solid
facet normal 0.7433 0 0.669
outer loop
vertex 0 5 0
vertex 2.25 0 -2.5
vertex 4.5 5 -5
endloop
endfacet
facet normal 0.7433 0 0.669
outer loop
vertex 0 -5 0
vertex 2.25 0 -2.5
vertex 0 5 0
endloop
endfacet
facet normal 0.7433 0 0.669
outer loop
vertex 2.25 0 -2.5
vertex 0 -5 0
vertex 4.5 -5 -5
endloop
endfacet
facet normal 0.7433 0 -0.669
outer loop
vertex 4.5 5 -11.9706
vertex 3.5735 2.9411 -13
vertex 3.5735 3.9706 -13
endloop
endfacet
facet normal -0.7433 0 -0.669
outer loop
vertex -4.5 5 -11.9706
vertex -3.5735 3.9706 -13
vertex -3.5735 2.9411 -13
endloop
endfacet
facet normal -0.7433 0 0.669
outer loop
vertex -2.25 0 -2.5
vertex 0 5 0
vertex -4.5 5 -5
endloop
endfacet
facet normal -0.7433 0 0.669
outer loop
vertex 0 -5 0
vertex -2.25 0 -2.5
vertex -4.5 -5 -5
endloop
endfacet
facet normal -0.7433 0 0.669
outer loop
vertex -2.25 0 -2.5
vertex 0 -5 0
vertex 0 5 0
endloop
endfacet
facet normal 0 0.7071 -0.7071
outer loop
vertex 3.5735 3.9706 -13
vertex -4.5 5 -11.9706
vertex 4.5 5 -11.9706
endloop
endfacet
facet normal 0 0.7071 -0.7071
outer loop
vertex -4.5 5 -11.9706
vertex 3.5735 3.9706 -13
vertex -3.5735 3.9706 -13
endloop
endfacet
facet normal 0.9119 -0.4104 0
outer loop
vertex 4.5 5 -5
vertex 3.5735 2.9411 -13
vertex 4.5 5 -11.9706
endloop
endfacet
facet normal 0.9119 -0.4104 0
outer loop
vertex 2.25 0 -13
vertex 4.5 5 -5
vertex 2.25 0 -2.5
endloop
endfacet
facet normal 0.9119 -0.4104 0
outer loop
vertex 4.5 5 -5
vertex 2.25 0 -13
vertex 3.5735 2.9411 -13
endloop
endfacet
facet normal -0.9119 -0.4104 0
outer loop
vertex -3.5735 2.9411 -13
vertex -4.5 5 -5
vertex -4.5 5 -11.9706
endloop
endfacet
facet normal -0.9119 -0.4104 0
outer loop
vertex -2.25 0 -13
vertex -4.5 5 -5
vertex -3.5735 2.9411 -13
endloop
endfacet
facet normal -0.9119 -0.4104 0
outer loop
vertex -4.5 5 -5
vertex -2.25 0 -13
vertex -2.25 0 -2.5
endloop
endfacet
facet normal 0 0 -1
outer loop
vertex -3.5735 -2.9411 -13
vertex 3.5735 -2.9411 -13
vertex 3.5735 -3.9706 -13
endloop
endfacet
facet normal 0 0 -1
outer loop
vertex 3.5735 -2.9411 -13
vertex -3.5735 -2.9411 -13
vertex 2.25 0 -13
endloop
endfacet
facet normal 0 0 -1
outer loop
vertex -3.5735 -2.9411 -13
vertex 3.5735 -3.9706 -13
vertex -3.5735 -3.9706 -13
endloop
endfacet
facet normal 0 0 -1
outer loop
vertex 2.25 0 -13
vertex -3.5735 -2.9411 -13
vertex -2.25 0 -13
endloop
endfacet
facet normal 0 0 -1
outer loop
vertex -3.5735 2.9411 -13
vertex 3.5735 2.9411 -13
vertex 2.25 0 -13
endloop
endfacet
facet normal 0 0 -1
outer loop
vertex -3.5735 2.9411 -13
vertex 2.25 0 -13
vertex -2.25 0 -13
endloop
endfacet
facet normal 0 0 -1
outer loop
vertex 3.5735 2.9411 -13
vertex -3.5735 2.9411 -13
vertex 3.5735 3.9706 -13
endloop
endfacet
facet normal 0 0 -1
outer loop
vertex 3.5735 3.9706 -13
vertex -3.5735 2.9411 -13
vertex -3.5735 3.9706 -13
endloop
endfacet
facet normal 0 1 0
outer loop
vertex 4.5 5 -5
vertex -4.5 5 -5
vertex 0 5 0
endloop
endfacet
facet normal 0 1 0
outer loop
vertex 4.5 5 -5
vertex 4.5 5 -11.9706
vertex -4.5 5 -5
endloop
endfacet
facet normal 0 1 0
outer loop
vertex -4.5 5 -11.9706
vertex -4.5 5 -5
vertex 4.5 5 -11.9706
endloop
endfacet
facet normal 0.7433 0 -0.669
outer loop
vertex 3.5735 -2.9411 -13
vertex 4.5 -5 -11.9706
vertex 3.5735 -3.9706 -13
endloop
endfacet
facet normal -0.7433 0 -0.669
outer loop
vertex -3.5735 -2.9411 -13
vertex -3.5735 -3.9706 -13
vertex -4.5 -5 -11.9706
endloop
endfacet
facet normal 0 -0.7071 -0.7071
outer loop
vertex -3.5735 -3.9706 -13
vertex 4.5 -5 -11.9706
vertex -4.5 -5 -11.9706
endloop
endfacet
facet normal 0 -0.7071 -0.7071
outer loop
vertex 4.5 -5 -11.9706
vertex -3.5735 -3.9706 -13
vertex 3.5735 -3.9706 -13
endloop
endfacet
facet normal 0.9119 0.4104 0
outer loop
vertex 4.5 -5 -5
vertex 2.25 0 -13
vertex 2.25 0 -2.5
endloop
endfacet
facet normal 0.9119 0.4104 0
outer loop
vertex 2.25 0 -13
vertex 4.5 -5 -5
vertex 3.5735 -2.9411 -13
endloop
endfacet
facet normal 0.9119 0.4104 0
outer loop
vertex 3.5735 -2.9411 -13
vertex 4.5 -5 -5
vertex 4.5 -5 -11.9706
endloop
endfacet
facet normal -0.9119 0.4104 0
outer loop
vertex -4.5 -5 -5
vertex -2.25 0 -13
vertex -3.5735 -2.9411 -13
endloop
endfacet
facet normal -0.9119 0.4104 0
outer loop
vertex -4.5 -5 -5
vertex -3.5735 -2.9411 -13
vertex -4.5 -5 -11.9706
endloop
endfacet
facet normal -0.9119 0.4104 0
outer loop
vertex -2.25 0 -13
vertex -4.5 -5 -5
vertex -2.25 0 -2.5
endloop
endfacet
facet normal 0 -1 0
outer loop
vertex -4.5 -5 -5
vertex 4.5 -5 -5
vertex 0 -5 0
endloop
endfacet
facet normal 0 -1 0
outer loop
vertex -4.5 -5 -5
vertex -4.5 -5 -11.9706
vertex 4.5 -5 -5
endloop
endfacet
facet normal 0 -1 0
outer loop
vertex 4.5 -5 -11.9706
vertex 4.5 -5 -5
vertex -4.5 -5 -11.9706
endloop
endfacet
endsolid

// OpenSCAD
// file: globals.scad
/*
Most things in this file is represented as one millimeter, so keep that in mind while changing things.
Some of the setting are not mm but at variables that you can set, such as 2*x=2x and you are setting what x is.
I will try to specify when things are variables and not exact measurements.
*/

obj_leg = 30;
leg_length = 5.5;
small_number = 0.001;
metal_core_rode_global = 5;


///////////////// number of holes /////////////////////
z_hole_number = 8;
other_holes = 8;

///////////////// Pins /////////////////////

//pins that poke out
ball_size = 10;
pin_height = 20;
pin_diameter = 6;


//holes
hole_ball_size = ball_size;
hole_pin_height = pin_height;
hole_pin_diameter = pin_diameter;

///////////////// Z THINGS /////////////////////

berring_slot_width = 7.5;
berring_slot_depth = 6.5;
metal_core_rode = 5;

///////////////// X THINGS /////////////////////

//male dove tails
max_width=10;
min_width=5;
depth=5;
height=obj_leg/2;

//female dove tails, this is found on the y mounts
girl_max_width=11;
girl_min_width=5;
girl_depth=5;
girl_height=obj_leg;


///////////////// Y THINGS /////////////////////
/*
The Y is so normal that all of those global variables at the top should change all of the setting in it, this section is set her incase there are variables set in the future development of this project.
*/
// file: include.scad
//////////////////      END SECTION       //////////////////

	module added_pins(){
		difference(){
			union(){
				translate([30/(15/4),obj_leg*leg_length,30/(15/4)]) pin();
				translate([30/(15/4)+14.5,obj_leg*leg_length,30/(15/4)+14]) pin();
			}
			union(){
							translate([30/(15/4)+13.5,obj_leg*leg_length-20,30/(15/4)+5])cube(size=[2,40,15]);
							translate([30/(15/4)+7.5,obj_leg*leg_length-20,30/(15/4)+15])rotate([0,90,0]) cube(size=[2,40,15]);	

							translate([30/(15/4)-1,obj_leg*leg_length-20,30/(15/4)-8])cube(size=[2,40,15]);
							translate([30/(15/4)-10,obj_leg*leg_length-20,30/(15/4)+1])rotate([0,90,0]) cube(size=[2,40,15]);
			}
		}
	}
	module taken_pins() {
		translate([30/(15/4)+14,obj_leg*leg_length-10,30/(15/4)]) mirror_pin();
		translate([30/(15/4),obj_leg*leg_length-10,30/(15/4)+15]) mirror_pin();
	}


//////////////////      OTHER STUFF       //////////////////

	module holes() {
		rotate([0,0,90]) for(y=[0:other_holes])
		translate([obj_leg+y*15,-15.5,7.5]) union() {
			translate([7.5,0,15]) hole_up();
			hole_down();
		}
	}
	module extend_holes() {
	module top(){
		rotate([0,0,90]) for(y=[0:other_holes+1])
		translate([(30/4)+y*15,-15.5,7.5]) union() {
			translate([7.5,0,15]) hole_up();
		}
	}
	module bottom(){
		rotate([0,0,90]) for(y=[0:other_holes+2])
		translate([(30/4)+y*15,-15.5,7.5]) union() {
			hole_down();
		
}
	}
	union(){
		top();
		bottom();
	}
	}

	module hole() {
		union() {
			rotate([90, 90, 0]) cylinder(h=40, d=hole_pin_diameter, center=true);
			translate([0,7.5,0]) sphere(d=hole_ball_size);
			translate([0,-6,0]) sphere(d=hole_ball_size);
		}
	}
	module hole_up() {
		union() {
			rotate([90, 90, 0]) cylinder(h=40, d=hole_pin_diameter, center=true);
			translate([0,7.5,10]) cylinder(h=hole_pin_height, d=hole_pin_diameter, center=true);
			translate([0,-6,10]) cylinder(h=hole_pin_height, d=hole_pin_diameter, center=true);
			translate([0,7.5,0]) sphere(d=hole_ball_size);
			translate([0,-6,0]) sphere(d=hole_ball_size);
		}
	}
	module hole_down() {
		union() {
			rotate([90, 90, 0]) cylinder(h=40, d=hole_pin_diameter, center=true);
			translate([0,7.5,-10]) cylinder(h=hole_pin_height, d=hole_pin_diameter, center=true);
			translate([0,-6,-10]) cylinder(h=hole_pin_height, d=hole_pin_diameter, center=true);
			translate([0,7.5,0]) sphere(d=hole_ball_size);
			translate([0,-6,0]) sphere(d=hole_ball_size);
		}
	}
	module pin() {
		union() {
			rotate([90, 90, 0]) cylinder(h=pin_height, d=pin_diameter, center=true);
			translate([0,7.5,0]) sphere(d=ball_size);
		}
	}

	module mirror_pin() {
		rotate([90, 90, 0]) cylinder(h=hole_pin_height+small_number, d=hole_pin_diameter, center=true);
		translate([0,-(pin_height-(ball_size/2)),0]) sphere(d=ball_size);
	}


//////////////////      SOME RACK AND Z THINGS       //////////////////

module z_holes() {
    rotate([0,-90,0]) for(z=[0:z_hole_number])
    translate([22.5+z*15,16,-12])
        hole();
}

module pin_cuts() {
	union(){
		cube(size=[2,10,40], center=true);
		rotate([0,0,90]) cube(size=[2,10,40], center=true);
	}
}
module pin_uncut() {
	union(){
		rotate([0, 0, 90]) cylinder(h=hole_pin_height, d=hole_pin_diameter, center=true);
		translate([0,0,10]) sphere(d=ball_hole);
	}
}


module pin_out() {
	union(){
		rotate([0, 0, 90]) cylinder(h=pin_height, d=pin_diameter, center=true);
		translate([0,0,10]) sphere(d= ball_size);
	}
}


module pins_z(){
	difference() {
		pin_out();
		pin_cuts();
	}
}
//////////////////      RACK AND SLIDE     ///////////////////

module straight_pins() {
	for(z=[0:((((obj_leg*leg_length)*2)-(obj_leg*2))/3)/14.5]) rotate([-90,0,0]) translate([z*15,30/(15/4),14]) pins_z();
	for(z=[0:((((obj_leg*leg_length)*2)-(obj_leg*2))/3)/14.5]) rotate([-90,0,0]) translate([z*15,30/(15/4)-14,14]) pins_z();
}
module stagger_pins() {
	for(z=[0:((((obj_leg*leg_length)*2)-(obj_leg*2))/3)/14.5]) rotate([-90,0,0]) translate([z*15,30/(15/4),14]) pins_z();
	for(z=[0:((((obj_leg*leg_length)*2)-(obj_leg*2))/3)/14.5]) rotate([-90,0,0]) translate([z*15+7,30/(15/4)-14,14]) pins_z();
}


//////////////////      DOVE TAIL       //////////////////

module male_dovetail(height) {
	dovetail_3d(max_width,min_width,depth,height);
}

module dovetail_3d(max_width=11, min_width=5, depth=5, height=30) {
	linear_extrude(height=height, convexity=2)
		dovetail_2d(max_width,min_width,depth);
}

module dovetail_2d(max_width=11, min_width=5, depth=5) {
	angle=atan((max_width/2-min_width/2)/depth);
	echo("angle: ", angle);
	polygon(paths=[[0,1,2,3,0]], points=[[-min_width/2,0], [-max_width/2,depth], [max_width/2, depth], [min_width/2,0]]);
}

//bow tie
	module tie_end(height){
				rotate([0,0,0]) translate([0,-0.01,((obj_leg/2)/2)]) male_dovetail(height);
				rotate([0,90,0]) translate([0,-0.01,((obj_leg/2)/2)]) male_dovetail(height);
				rotate([0,180,0]) translate([0,-0.01,((obj_leg/2)/2)]) male_dovetail(height);
				rotate([0,-90,0]) translate([0,-0.01,((obj_leg/2)/2)]) male_dovetail(height);
	}

module bow_support(){
	difference(){
		intersection(){
			translate([-15,0,-15]) cube([30,9,30]);
			scale([1.05,1.05,1.05]) rotate([0,45,0]) tie_end();
		}
		cube([29.2,29.2,29.2], center=true);
	}
}

	module wrap(){
		depth = 30;
				translate([-15,30,15]) rotate([90,180,90]) male_dovetail(height=depth);
				rotate([0,90,0]) translate([-15,30,15]) rotate([90,180,90]) male_dovetail(height=depth);
				rotate([0,180,0]) translate([-15,30,15]) rotate([90,180,90]) male_dovetail(height=depth);
				rotate([0,-90,0]) translate([-15,30,15]) rotate([90,180,90]) male_dovetail(height=depth);
	}
// main file
smoothing = 100;
length = 13;
tilt_level = 1;
scaling_x = .9;
scaling_y = 1;
scaling_z = 1;
include <include.scad>;
include <globals.scad>;

obj_leg= 12;
$fn = smoothing;
module bow_tie_master(){
	union(){
		mirror([0,1,0]) 		intersection(){
			intersection(){
				rotate([0,-45,0]) cube([obj_leg,obj_leg,obj_leg]);
				translate([-obj_leg/2,(obj_leg/2)-tilt_level,-5]) rotate([45,0,0]) cube([obj_leg,obj_leg,obj_leg*2]);
			}
			male_dovetail(height=length);
		}
		
		intersection(){
			intersection(){
				rotate([0,-45,0]) cube([obj_leg,obj_leg,obj_leg]);
				translate([-obj_leg/2,(obj_leg/2)-tilt_level,-5]) rotate([45,0,0]) cube([obj_leg,obj_leg,obj_leg*2]);
			}
			male_dovetail(height=length);
		}
		
	}
}

module finished(){
	rotate([0,45*0,0]){
		
			rotate([0,180,0]) bow_tie_master();
		
	}
}

scale([scaling_x,scaling_y,scaling_z]) finished();
